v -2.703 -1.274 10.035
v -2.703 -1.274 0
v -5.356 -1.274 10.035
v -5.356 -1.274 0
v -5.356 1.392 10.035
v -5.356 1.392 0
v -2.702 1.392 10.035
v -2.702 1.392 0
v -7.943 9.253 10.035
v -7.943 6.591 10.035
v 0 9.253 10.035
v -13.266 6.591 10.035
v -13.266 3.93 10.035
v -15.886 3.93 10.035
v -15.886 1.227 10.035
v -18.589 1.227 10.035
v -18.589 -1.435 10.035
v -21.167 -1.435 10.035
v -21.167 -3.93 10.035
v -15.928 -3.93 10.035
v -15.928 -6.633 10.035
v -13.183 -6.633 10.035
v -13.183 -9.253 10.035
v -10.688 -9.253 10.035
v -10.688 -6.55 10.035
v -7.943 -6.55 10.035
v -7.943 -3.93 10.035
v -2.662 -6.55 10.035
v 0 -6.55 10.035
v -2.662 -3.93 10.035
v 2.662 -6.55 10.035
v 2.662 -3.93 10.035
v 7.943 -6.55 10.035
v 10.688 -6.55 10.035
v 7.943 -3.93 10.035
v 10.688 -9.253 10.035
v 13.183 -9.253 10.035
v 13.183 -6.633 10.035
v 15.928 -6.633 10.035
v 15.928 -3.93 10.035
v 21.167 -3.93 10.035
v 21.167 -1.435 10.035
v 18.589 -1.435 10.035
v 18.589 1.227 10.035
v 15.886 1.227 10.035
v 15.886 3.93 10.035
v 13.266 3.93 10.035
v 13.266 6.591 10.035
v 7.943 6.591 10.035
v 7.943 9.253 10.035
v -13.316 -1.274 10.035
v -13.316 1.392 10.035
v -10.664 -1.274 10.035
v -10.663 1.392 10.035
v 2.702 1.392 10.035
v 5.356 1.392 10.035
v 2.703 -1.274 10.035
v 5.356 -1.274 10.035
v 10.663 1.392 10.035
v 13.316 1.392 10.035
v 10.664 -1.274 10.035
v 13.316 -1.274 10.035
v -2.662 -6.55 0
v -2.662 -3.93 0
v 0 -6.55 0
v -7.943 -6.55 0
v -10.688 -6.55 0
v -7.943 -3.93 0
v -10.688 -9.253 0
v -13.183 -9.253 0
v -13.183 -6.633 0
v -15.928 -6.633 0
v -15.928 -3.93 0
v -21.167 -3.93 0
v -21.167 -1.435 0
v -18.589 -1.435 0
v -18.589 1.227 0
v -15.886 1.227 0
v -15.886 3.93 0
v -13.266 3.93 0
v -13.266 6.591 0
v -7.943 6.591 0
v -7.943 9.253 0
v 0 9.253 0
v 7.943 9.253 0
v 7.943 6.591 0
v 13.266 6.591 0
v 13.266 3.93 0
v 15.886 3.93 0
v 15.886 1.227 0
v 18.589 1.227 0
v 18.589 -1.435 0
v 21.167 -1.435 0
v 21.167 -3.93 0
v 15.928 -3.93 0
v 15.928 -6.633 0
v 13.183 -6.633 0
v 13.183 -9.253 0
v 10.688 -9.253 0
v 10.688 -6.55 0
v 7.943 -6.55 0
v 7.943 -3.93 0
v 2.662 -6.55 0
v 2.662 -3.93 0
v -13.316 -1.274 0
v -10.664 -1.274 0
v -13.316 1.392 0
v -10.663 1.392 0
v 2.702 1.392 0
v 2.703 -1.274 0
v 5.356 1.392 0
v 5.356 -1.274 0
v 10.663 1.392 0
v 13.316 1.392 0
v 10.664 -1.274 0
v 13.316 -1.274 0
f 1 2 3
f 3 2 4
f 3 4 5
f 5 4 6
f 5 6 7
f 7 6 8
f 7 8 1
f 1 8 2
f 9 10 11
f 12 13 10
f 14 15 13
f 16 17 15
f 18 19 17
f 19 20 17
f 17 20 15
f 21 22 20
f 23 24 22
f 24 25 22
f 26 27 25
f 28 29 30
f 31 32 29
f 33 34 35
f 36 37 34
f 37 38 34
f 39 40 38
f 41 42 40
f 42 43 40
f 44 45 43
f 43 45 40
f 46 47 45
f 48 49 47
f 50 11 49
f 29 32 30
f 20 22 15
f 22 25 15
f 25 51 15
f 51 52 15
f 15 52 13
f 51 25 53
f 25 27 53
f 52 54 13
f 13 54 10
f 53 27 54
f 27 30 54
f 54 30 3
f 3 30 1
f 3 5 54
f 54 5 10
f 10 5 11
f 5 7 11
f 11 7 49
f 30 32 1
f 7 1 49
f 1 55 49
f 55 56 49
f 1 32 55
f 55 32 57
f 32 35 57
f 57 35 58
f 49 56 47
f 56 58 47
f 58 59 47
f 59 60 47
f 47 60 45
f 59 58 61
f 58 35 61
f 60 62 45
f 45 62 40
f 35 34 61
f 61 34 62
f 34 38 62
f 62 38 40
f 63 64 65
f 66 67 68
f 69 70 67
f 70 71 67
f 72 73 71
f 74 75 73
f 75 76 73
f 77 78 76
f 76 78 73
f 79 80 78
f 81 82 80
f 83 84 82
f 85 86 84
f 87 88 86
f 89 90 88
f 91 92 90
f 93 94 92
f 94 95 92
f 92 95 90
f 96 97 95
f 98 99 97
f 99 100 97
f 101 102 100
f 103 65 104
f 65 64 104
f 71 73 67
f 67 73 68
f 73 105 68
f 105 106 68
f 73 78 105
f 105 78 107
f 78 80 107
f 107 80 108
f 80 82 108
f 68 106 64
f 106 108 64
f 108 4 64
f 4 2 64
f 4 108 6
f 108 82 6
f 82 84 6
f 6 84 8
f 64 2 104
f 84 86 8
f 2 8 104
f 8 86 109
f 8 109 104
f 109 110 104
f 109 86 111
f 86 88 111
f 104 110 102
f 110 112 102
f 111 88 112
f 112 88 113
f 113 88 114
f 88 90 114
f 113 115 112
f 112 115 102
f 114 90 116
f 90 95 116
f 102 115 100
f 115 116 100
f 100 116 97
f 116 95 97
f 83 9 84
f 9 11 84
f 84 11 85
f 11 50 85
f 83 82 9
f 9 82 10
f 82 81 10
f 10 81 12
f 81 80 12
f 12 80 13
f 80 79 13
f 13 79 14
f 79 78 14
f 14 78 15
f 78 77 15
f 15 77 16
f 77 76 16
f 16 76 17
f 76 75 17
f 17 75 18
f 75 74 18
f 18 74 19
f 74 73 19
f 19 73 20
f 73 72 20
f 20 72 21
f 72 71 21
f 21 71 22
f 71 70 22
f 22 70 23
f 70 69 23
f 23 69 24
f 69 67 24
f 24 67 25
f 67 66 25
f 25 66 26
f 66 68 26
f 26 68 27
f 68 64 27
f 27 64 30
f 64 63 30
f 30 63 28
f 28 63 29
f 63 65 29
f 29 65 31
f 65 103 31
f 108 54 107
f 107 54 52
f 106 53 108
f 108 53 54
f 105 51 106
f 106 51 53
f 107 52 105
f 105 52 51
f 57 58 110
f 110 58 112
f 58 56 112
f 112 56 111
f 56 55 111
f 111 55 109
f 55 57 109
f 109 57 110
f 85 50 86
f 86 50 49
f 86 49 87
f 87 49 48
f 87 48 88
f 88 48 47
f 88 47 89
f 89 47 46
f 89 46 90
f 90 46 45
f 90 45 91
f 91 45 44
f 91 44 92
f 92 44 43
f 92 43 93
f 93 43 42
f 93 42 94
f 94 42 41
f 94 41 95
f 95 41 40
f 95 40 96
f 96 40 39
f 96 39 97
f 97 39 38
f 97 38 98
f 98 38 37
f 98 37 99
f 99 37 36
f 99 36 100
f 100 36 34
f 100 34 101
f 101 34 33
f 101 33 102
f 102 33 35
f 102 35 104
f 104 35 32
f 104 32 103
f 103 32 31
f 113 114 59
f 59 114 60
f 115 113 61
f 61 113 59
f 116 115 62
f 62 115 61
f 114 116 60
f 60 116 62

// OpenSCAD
module invaders_v2_ship() 
{
	polyhedron(
		points=[
			[-2.703086, -1.273861, 10.03545],
			[-2.703084, -1.273861, 1.037121e-05],
			[-5.355711, -1.273861, 10.03545],
			[-5.355711, -1.273861, 10.03545],
			[-2.703084, -1.273861, 1.037121e-05],
			[-5.355711, -1.273861, 1.037121e-05],
			[-5.355711, -1.273861, 10.03545],
			[-5.355711, -1.273861, 1.037121e-05],
			[-5.355711, 1.391655, 10.03545],
			[-5.355711, 1.391655, 10.03545],
			[-5.355711, -1.273861, 1.037121e-05],
			[-5.355711, 1.391655, 1.037121e-05],
			[-5.355711, 1.391655, 10.03545],
			[-5.355711, 1.391655, 1.037121e-05],
			[-2.701987, 1.391655, 10.03545],
			[-2.701987, 1.391655, 10.03545],
			[-5.355711, 1.391655, 1.037121e-05],
			[-2.701985, 1.391655, 0.0],
			[-2.701987, 1.391655, 10.03545],
			[-2.701985, 1.391655, 0.0],
			[-2.703086, -1.273861, 10.03545],
			[-2.703086, -1.273861, 10.03545],
			[-2.701985, 1.391655, 0.0],
			[-2.703084, -1.273861, 1.037121e-05],
			[-7.942975, 9.252937, 10.03545],
			[-7.942975, 6.591419, 10.03545],
			[-9.536743e-07, 9.252937, 10.03545],
			[-13.26601, 6.591419, 10.03545],
			[-13.26601, 3.929897, 10.03545],
			[-7.942975, 6.591419, 10.03545],
			[-15.88595, 3.929897, 10.03545],
			[-15.88595, 1.226791, 10.03545],
			[-13.26601, 3.929897, 10.03545],
			[-18.58906, 1.226791, 10.03545],
			[-18.58906, -1.434727, 10.03545],
			[-15.88595, 1.226791, 10.03545],
			[-21.1674, -1.434727, 10.03545],
			[-21.1674, -3.929901, 10.03545],
			[-18.58906, -1.434727, 10.03545],
			[-21.1674, -3.929901, 10.03545],
			[-15.92753, -3.929901, 10.03545],
			[-18.58906, -1.434727, 10.03545],
			[-18.58906, -1.434727, 10.03545],
			[-15.92753, -3.929901, 10.03545],
			[-15.88595, 1.226791, 10.03545],
			[-15.92753, -6.633011, 10.03545],
			[-13.18284, -6.633011, 10.03545],
			[-15.92753, -3.929901, 10.03545],
			[-13.18284, -9.252937, 10.03545],
			[-10.68767, -9.252937, 10.03545],
			[-13.18284, -6.633011, 10.03545],
			[-10.68767, -9.252937, 10.03545],
			[-10.68767, -6.549835, 10.03545],
			[-13.18284, -6.633011, 10.03545],
			[-7.942975, -6.549835, 10.03545],
			[-7.942975, -3.929901, 10.03545],
			[-10.68767, -6.549835, 10.03545],
			[-2.661523, -6.549835, 10.03545],
			[-9.536743e-07, -6.549835, 10.03545],
			[-2.661523, -3.929901, 10.03545],
			[2.661521, -6.549835, 10.03545],
			[2.661521, -3.929901, 10.03545],
			[-9.536743e-07, -6.549835, 10.03545],
			[7.942974, -6.549835, 10.03546],
			[10.68767, -6.549835, 10.03546],
			[7.942974, -3.929901, 10.03546],
			[10.68767, -9.252937, 10.03546],
			[13.18284, -9.252937, 10.03546],
			[10.68767, -6.549835, 10.03546],
			[13.18284, -9.252937, 10.03546],
			[13.18284, -6.633011, 10.03546],
			[10.68767, -6.549835, 10.03546],
			[15.92754, -6.633011, 10.03546],
			[15.92754, -3.929901, 10.03546],
			[13.18284, -6.633011, 10.03546],
			[21.1674, -3.929901, 10.03546],
			[21.1674, -1.434727, 10.03546],
			[15.92754, -3.929901, 10.03546],
			[21.1674, -1.434727, 10.03546],
			[18.58906, -1.434727, 10.03546],
			[15.92754, -3.929901, 10.03546],
			[18.58906, 1.226791, 10.03546],
			[15.88595, 1.226791, 10.03546],
			[18.58906, -1.434727, 10.03546],
			[18.58906, -1.434727, 10.03546],
			[15.88595, 1.226791, 10.03546],
			[15.92754, -3.929901, 10.03546],
			[15.88595, 3.929897, 10.03546],
			[13.26602, 3.929897, 10.03546],
			[15.88595, 1.226791, 10.03546],
			[13.26602, 6.591419, 10.03546],
			[7.942974, 6.591419, 10.03546],
			[13.26602, 3.929897, 10.03546],
			[7.942974, 9.252937, 10.03546],
			[-9.536743e-07, 9.252937, 10.03545],
			[7.942974, 6.591419, 10.03546],
			[-9.536743e-07, -6.549835, 10.03545],
			[2.661521, -3.929901, 10.03545],
			[-2.661523, -3.929901, 10.03545],
			[-15.92753, -3.929901, 10.03545],
			[-13.18284, -6.633011, 10.03545],
			[-15.88595, 1.226791, 10.03545],
			[-13.18284, -6.633011, 10.03545],
			[-10.68767, -6.549835, 10.03545],
			[-15.88595, 1.226791, 10.03545],
			[-10.68767, -6.549835, 10.03545],
			[-13.31628, -1.273861, 10.03545],
			[-15.88595, 1.226791, 10.03545],
			[-13.31628, -1.273861, 10.03545],
			[-13.31628, 1.391655, 10.03545],
			[-15.88595, 1.226791, 10.03545],
			[-15.88595, 1.226791, 10.03545],
			[-13.31628, 1.391655, 10.03545],
			[-13.26601, 3.929897, 10.03545],
			[-13.31628, -1.273861, 10.03545],
			[-10.68767, -6.549835, 10.03545],
			[-10.66366, -1.273861, 10.03545],
			[-10.68767, -6.549835, 10.03545],
			[-7.942975, -3.929901, 10.03545],
			[-10.66366, -1.273861, 10.03545],
			[-13.31628, 1.391655, 10.03545],
			[-10.66256, 1.391655, 10.03545],
			[-13.26601, 3.929897, 10.03545],
			[-13.26601, 3.929897, 10.03545],
			[-10.66256, 1.391655, 10.03545],
			[-7.942975, 6.591419, 10.03545],
			[-10.66366, -1.273861, 10.03545],
			[-7.942975, -3.929901, 10.03545],
			[-10.66256, 1.391655, 10.03545],
			[-7.942975, -3.929901, 10.03545],
			[-2.661523, -3.929901, 10.03545],
			[-10.66256, 1.391655, 10.03545],
			[-10.66256, 1.391655, 10.03545],
			[-2.661523, -3.929901, 10.03545],
			[-5.355711, -1.273861, 10.03545],
			[-5.355711, -1.273861, 10.03545],
			[-2.661523, -3.929901, 10.03545],
			[-2.703086, -1.273861, 10.03545],
			[-5.355711, -1.273861, 10.03545],
			[-5.355711, 1.391655, 10.03545],
			[-10.66256, 1.391655, 10.03545],
			[-10.66256, 1.391655, 10.03545],
			[-5.355711, 1.391655, 10.03545],
			[-7.942975, 6.591419, 10.03545],
			[-7.942975, 6.591419, 10.03545],
			[-5.355711, 1.391655, 10.03545],
			[-9.536743e-07, 9.252937, 10.03545],
			[-5.355711, 1.391655, 10.03545],
			[-2.701987, 1.391655, 10.03545],
			[-9.536743e-07, 9.252937, 10.03545],
			[-9.536743e-07, 9.252937, 10.03545],
			[-2.701987, 1.391655, 10.03545],
			[7.942974, 6.591419, 10.03546],
			[-2.661523, -3.929901, 10.03545],
			[2.661521, -3.929901, 10.03545],
			[-2.703086, -1.273861, 10.03545],
			[-2.701987, 1.391655, 10.03545],
			[-2.703086, -1.273861, 10.03545],
			[7.942974, 6.591419, 10.03546],
			[-2.703086, -1.273861, 10.03545],
			[2.701985, 1.391655, 10.03545],
			[7.942974, 6.591419, 10.03546],
			[2.701985, 1.391655, 10.03545],
			[5.355711, 1.391655, 10.03546],
			[7.942974, 6.591419, 10.03546],
			[-2.703086, -1.273861, 10.03545],
			[2.661521, -3.929901, 10.03545],
			[2.701985, 1.391655, 10.03545],
			[2.701985, 1.391655, 10.03545],
			[2.661521, -3.929901, 10.03545],
			[2.703084, -1.273861, 10.03545],
			[2.661521, -3.929901, 10.03545],
			[7.942974, -3.929901, 10.03546],
			[2.703084, -1.273861, 10.03545],
			[2.703084, -1.273861, 10.03545],
			[7.942974, -3.929901, 10.03546],
			[5.355711, -1.273861, 10.03546],
			[7.942974, 6.591419, 10.03546],
			[5.355711, 1.391655, 10.03546],
			[13.26602, 3.929897, 10.03546],
			[5.355711, 1.391655, 10.03546],
			[5.355711, -1.273861, 10.03546],
			[13.26602, 3.929897, 10.03546],
			[5.355711, -1.273861, 10.03546],
			[10.66256, 1.391655, 10.03546],
			[13.26602, 3.929897, 10.03546],
			[10.66256, 1.391655, 10.03546],
			[13.31628, 1.391655, 10.03546],
			[13.26602, 3.929897, 10.03546],
			[13.26602, 3.929897, 10.03546],
			[13.31628, 1.391655, 10.03546],
			[15.88595, 1.226791, 10.03546],
			[10.66256, 1.391655, 10.03546],
			[5.355711, -1.273861, 10.03546],
			[10.66366, -1.273861, 10.03546],
			[5.355711, -1.273861, 10.03546],
			[7.942974, -3.929901, 10.03546],
			[10.66366, -1.273861, 10.03546],
			[13.31628, 1.391655, 10.03546],
			[13.31628, -1.273861, 10.03546],
			[15.88595, 1.226791, 10.03546],
			[15.88595, 1.226791, 10.03546],
			[13.31628, -1.273861, 10.03546],
			[15.92754, -3.929901, 10.03546],
			[7.942974, -3.929901, 10.03546],
			[10.68767, -6.549835, 10.03546],
			[10.66366, -1.273861, 10.03546],
			[10.66366, -1.273861, 10.03546],
			[10.68767, -6.549835, 10.03546],
			[13.31628, -1.273861, 10.03546],
			[10.68767, -6.549835, 10.03546],
			[13.18284, -6.633011, 10.03546],
			[13.31628, -1.273861, 10.03546],
			[13.31628, -1.273861, 10.03546],
			[13.18284, -6.633011, 10.03546],
			[15.92754, -3.929901, 10.03546],
			[-2.661521, -6.549835, 5.125999e-06],
			[-2.661521, -3.929901, 5.125999e-06],
			[9.536743e-07, -6.549835, 5.125999e-06],
			[-7.942975, -6.549835, 5.125999e-06],
			[-10.68767, -6.549835, 5.125999e-06],
			[-7.942975, -3.929901, 5.125999e-06],
			[-10.68767, -9.252937, 5.125999e-06],
			[-13.18284, -9.252937, 5.125999e-06],
			[-10.68767, -6.549835, 5.125999e-06],
			[-13.18284, -9.252937, 5.125999e-06],
			[-13.18284, -6.633011, 5.125999e-06],
			[-10.68767, -6.549835, 5.125999e-06],
			[-15.92753, -6.633011, 5.125999e-06],
			[-15.92753, -3.929901, 5.125999e-06],
			[-13.18284, -6.633011, 5.125999e-06],
			[-21.1674, -3.929901, 2.220446e-16],
			[-21.1674, -1.434727, 2.220446e-16],
			[-15.92753, -3.929901, 5.125999e-06],
			[-21.1674, -1.434727, 2.220446e-16],
			[-18.58906, -1.434727, 2.220446e-16],
			[-15.92753, -3.929901, 5.125999e-06],
			[-18.58906, 1.226791, 0.0],
			[-15.88595, 1.226791, 5.125999e-06],
			[-18.58906, -1.434727, 2.220446e-16],
			[-18.58906, -1.434727, 2.220446e-16],
			[-15.88595, 1.226791, 5.125999e-06],
			[-15.92753, -3.929901, 5.125999e-06],
			[-15.88595, 3.929897, 5.125999e-06],
			[-13.26601, 3.929897, 5.125999e-06],
			[-15.88595, 1.226791, 5.125999e-06],
			[-13.26601, 6.591419, 5.125999e-06],
			[-7.942975, 6.591419, 5.125999e-06],
			[-13.26601, 3.929897, 5.125999e-06],
			[-7.942975, 9.252937, 5.125999e-06],
			[9.536743e-07, 9.252937, 5.125999e-06],
			[-7.942975, 6.591419, 5.125999e-06],
			[7.942974, 9.252937, 1.037121e-05],
			[7.942974, 6.591419, 1.037121e-05],
			[9.536743e-07, 9.252937, 5.125999e-06],
			[13.26602, 6.591419, 1.037121e-05],
			[13.26602, 3.929897, 1.037121e-05],
			[7.942974, 6.591419, 1.037121e-05],
			[15.88595, 3.929897, 1.037121e-05],
			[15.88595, 1.226791, 1.037121e-05],
			[13.26602, 3.929897, 1.037121e-05],
			[18.58906, 1.226791, 1.037121e-05],
			[18.58906, -1.434727, 1.037121e-05],
			[15.88595, 1.226791, 1.037121e-05],
			[21.1674, -1.434727, 1.037121e-05],
			[21.1674, -3.929901, 1.037121e-05],
			[18.58906, -1.434727, 1.037121e-05],
			[21.1674, -3.929901, 1.037121e-05],
			[15.92754, -3.929901, 1.037121e-05],
			[18.58906, -1.434727, 1.037121e-05],
			[18.58906, -1.434727, 1.037121e-05],
			[15.92754, -3.929901, 1.037121e-05],
			[15.88595, 1.226791, 1.037121e-05],
			[15.92754, -6.633011, 1.037121e-05],
			[13.18284, -6.633011, 1.037121e-05],
			[15.92754, -3.929901, 1.037121e-05],
			[13.18284, -9.252937, 1.037121e-05],
			[10.68767, -9.252937, 1.037121e-05],
			[13.18284, -6.633011, 1.037121e-05],
			[10.68767, -9.252937, 1.037121e-05],
			[10.68767, -6.549835, 1.037121e-05],
			[13.18284, -6.633011, 1.037121e-05],
			[7.942974, -6.549835, 1.037121e-05],
			[7.942974, -3.929901, 1.037121e-05],
			[10.68767, -6.549835, 1.037121e-05],
			[2.661521, -6.549835, 1.037121e-05],
			[9.536743e-07, -6.549835, 5.125999e-06],
			[2.661521, -3.929901, 1.037121e-05],
			[9.536743e-07, -6.549835, 5.125999e-06],
			[-2.661521, -3.929901, 5.125999e-06],
			[2.661521, -3.929901, 1.037121e-05],
			[-13.18284, -6.633011, 5.125999e-06],
			[-15.92753, -3.929901, 5.125999e-06],
			[-10.68767, -6.549835, 5.125999e-06],
			[-10.68767, -6.549835, 5.125999e-06],
			[-15.92753, -3.929901, 5.125999e-06],
			[-7.942975, -3.929901, 5.125999e-06],
			[-15.92753, -3.929901, 5.125999e-06],
			[-13.31628, -1.273861, 1.037121e-05],
			[-7.942975, -3.929901, 5.125999e-06],
			[-13.31628, -1.273861, 1.037121e-05],
			[-10.66366, -1.273861, 1.037121e-05],
			[-7.942975, -3.929901, 5.125999e-06],
			[-15.92753, -3.929901, 5.125999e-06],
			[-15.88595, 1.226791, 5.125999e-06],
			[-13.31628, -1.273861, 1.037121e-05],
			[-13.31628, -1.273861, 1.037121e-05],
			[-15.88595, 1.226791, 5.125999e-06],
			[-13.31628, 1.391655, 1.037121e-05],
			[-15.88595, 1.226791, 5.125999e-06],
			[-13.26601, 3.929897, 5.125999e-06],
			[-13.31628, 1.391655, 1.037121e-05],
			[-13.31628, 1.391655, 1.037121e-05],
			[-13.26601, 3.929897, 5.125999e-06],
			[-10.66256, 1.391655, 0.0],
			[-13.26601, 3.929897, 5.125999e-06],
			[-7.942975, 6.591419, 5.125999e-06],
			[-10.66256, 1.391655, 0.0],
			[-7.942975, -3.929901, 5.125999e-06],
			[-10.66366, -1.273861, 1.037121e-05],
			[-2.661521, -3.929901, 5.125999e-06],
			[-10.66366, -1.273861, 1.037121e-05],
			[-10.66256, 1.391655, 0.0],
			[-2.661521, -3.929901, 5.125999e-06],
			[-10.66256, 1.391655, 0.0],
			[-5.355711, -1.273861, 1.037121e-05],
			[-2.661521, -3.929901, 5.125999e-06],
			[-5.355711, -1.273861, 1.037121e-05],
			[-2.703084, -1.273861, 1.037121e-05],
			[-2.661521, -3.929901, 5.125999e-06],
			[-5.355711, -1.273861, 1.037121e-05],
			[-10.66256, 1.391655, 0.0],
			[-5.355711, 1.391655, 1.037121e-05],
			[-10.66256, 1.391655, 0.0],
			[-7.942975, 6.591419, 5.125999e-06],
			[-5.355711, 1.391655, 1.037121e-05],
			[-7.942975, 6.591419, 5.125999e-06],
			[9.536743e-07, 9.252937, 5.125999e-06],
			[-5.355711, 1.391655, 1.037121e-05],
			[-5.355711, 1.391655, 1.037121e-05],
			[9.536743e-07, 9.252937, 5.125999e-06],
			[-2.701985, 1.391655, 0.0],
			[-2.661521, -3.929901, 5.125999e-06],
			[-2.703084, -1.273861, 1.037121e-05],
			[2.661521, -3.929901, 1.037121e-05],
			[9.536743e-07, 9.252937, 5.125999e-06],
			[7.942974, 6.591419, 1.037121e-05],
			[-2.701985, 1.391655, 0.0],
			[-2.703084, -1.273861, 1.037121e-05],
			[-2.701985, 1.391655, 0.0],
			[2.661521, -3.929901, 1.037121e-05],
			[-2.701985, 1.391655, 0.0],
			[7.942974, 6.591419, 1.037121e-05],
			[2.701985, 1.391655, 0.0],
			[-2.701985, 1.391655, 0.0],
			[2.701985, 1.391655, 0.0],
			[2.661521, -3.929901, 1.037121e-05],
			[2.701985, 1.391655, 0.0],
			[2.703084, -1.273861, 1.037121e-05],
			[2.661521, -3.929901, 1.037121e-05],
			[2.701985, 1.391655, 0.0],
			[7.942974, 6.591419, 1.037121e-05],
			[5.355711, 1.391655, 1.549721e-05],
			[7.942974, 6.591419, 1.037121e-05],
			[13.26602, 3.929897, 1.037121e-05],
			[5.355711, 1.391655, 1.549721e-05],
			[2.661521, -3.929901, 1.037121e-05],
			[2.703084, -1.273861, 1.037121e-05],
			[7.942974, -3.929901, 1.037121e-05],
			[2.703084, -1.273861, 1.037121e-05],
			[5.355711, -1.273861, 1.549721e-05],
			[7.942974, -3.929901, 1.037121e-05],
			[5.355711, 1.391655, 1.549721e-05],
			[13.26602, 3.929897, 1.037121e-05],
			[5.355711, -1.273861, 1.549721e-05],
			[5.355711, -1.273861, 1.549721e-05],
			[13.26602, 3.929897, 1.037121e-05],
			[10.66256, 1.391655, 5.125999e-06],
			[10.66256, 1.391655, 5.125999e-06],
			[13.26602, 3.929897, 1.037121e-05],
			[13.31628, 1.391655, 1.549721e-05],
			[13.26602, 3.929897, 1.037121e-05],
			[15.88595, 1.226791, 1.037121e-05],
			[13.31628, 1.391655, 1.549721e-05],
			[10.66256, 1.391655, 5.125999e-06],
			[10.66366, -1.273861, 1.549721e-05],
			[5.355711, -1.273861, 1.549721e-05],
			[5.355711, -1.273861, 1.549721e-05],
			[10.66366, -1.273861, 1.549721e-05],
			[7.942974, -3.929901, 1.037121e-05],
			[13.31628, 1.391655, 1.549721e-05],
			[15.88595, 1.226791, 1.037121e-05],
			[13.31628, -1.273861, 1.549721e-05],
			[15.88595, 1.226791, 1.037121e-05],
			[15.92754, -3.929901, 1.037121e-05],
			[13.31628, -1.273861, 1.549721e-05],
			[7.942974, -3.929901, 1.037121e-05],
			[10.66366, -1.273861, 1.549721e-05],
			[10.68767, -6.549835, 1.037121e-05],
			[10.66366, -1.273861, 1.549721e-05],
			[13.31628, -1.273861, 1.549721e-05],
			[10.68767, -6.549835, 1.037121e-05],
			[10.68767, -6.549835, 1.037121e-05],
			[13.31628, -1.273861, 1.549721e-05],
			[13.18284, -6.633011, 1.037121e-05],
			[13.31628, -1.273861, 1.549721e-05],
			[15.92754, -3.929901, 1.037121e-05],
			[13.18284, -6.633011, 1.037121e-05],
			[-7.942975, 9.252937, 5.125999e-06],
			[-7.942975, 9.252937, 10.03545],
			[9.536743e-07, 9.252937, 5.125999e-06],
			[-7.942975, 9.252937, 10.03545],
			[-9.536743e-07, 9.252937, 10.03545],
			[9.536743e-07, 9.252937, 5.125999e-06],
			[9.536743e-07, 9.252937, 5.125999e-06],
			[-9.536743e-07, 9.252937, 10.03545],
			[7.942974, 9.252937, 1.037121e-05],
			[-9.536743e-07, 9.252937, 10.03545],
			[7.942974, 9.252937, 10.03546],
			[7.942974, 9.252937, 1.037121e-05],
			[-7.942975, 9.252937, 5.125999e-06],
			[-7.942975, 6.591419, 5.125999e-06],
			[-7.942975, 9.252937, 10.03545],
			[-7.942975, 9.252937, 10.03545],
			[-7.942975, 6.591419, 5.125999e-06],
			[-7.942975, 6.591419, 10.03545],
			[-7.942975, 6.591419, 5.125999e-06],
			[-13.26601, 6.591419, 5.125999e-06],
			[-7.942975, 6.591419, 10.03545],
			[-7.942975, 6.591419, 10.03545],
			[-13.26601, 6.591419, 5.125999e-06],
			[-13.26601, 6.591419, 10.03545],
			[-13.26601, 6.591419, 5.125999e-06],
			[-13.26601, 3.929897, 5.125999e-06],
			[-13.26601, 6.591419, 10.03545],
			[-13.26601, 6.591419, 10.03545],
			[-13.26601, 3.929897, 5.125999e-06],
			[-13.26601, 3.929897, 10.03545],
			[-13.26601, 3.929897, 5.125999e-06],
			[-15.88595, 3.929897, 5.125999e-06],
			[-13.26601, 3.929897, 10.03545],
			[-13.26601, 3.929897, 10.03545],
			[-15.88595, 3.929897, 5.125999e-06],
			[-15.88595, 3.929897, 10.03545],
			[-15.88595, 3.929897, 5.125999e-06],
			[-15.88595, 1.226791, 5.125999e-06],
			[-15.88595, 3.929897, 10.03545],
			[-15.88595, 3.929897, 10.03545],
			[-15.88595, 1.226791, 5.125999e-06],
			[-15.88595, 1.226791, 10.03545],
			[-15.88595, 1.226791, 5.125999e-06],
			[-18.58906, 1.226791, 0.0],
			[-15.88595, 1.226791, 10.03545],
			[-15.88595, 1.226791, 10.03545],
			[-18.58906, 1.226791, 0.0],
			[-18.58906, 1.226791, 10.03545],
			[-18.58906, 1.226791, 0.0],
			[-18.58906, -1.434727, 2.220446e-16],
			[-18.58906, 1.226791, 10.03545],
			[-18.58906, 1.226791, 10.03545],
			[-18.58906, -1.434727, 2.220446e-16],
			[-18.58906, -1.434727, 10.03545],
			[-18.58906, -1.434727, 2.220446e-16],
			[-21.1674, -1.434727, 2.220446e-16],
			[-18.58906, -1.434727, 10.03545],
			[-18.58906, -1.434727, 10.03545],
			[-21.1674, -1.434727, 2.220446e-16],
			[-21.1674, -1.434727, 10.03545],
			[-21.1674, -1.434727, 2.220446e-16],
			[-21.1674, -3.929901, 2.220446e-16],
			[-21.1674, -1.434727, 10.03545],
			[-21.1674, -1.434727, 10.03545],
			[-21.1674, -3.929901, 2.220446e-16],
			[-21.1674, -3.929901, 10.03545],
			[-21.1674, -3.929901, 2.220446e-16],
			[-15.92753, -3.929901, 5.125999e-06],
			[-21.1674, -3.929901, 10.03545],
			[-21.1674, -3.929901, 10.03545],
			[-15.92753, -3.929901, 5.125999e-06],
			[-15.92753, -3.929901, 10.03545],
			[-15.92753, -3.929901, 5.125999e-06],
			[-15.92753, -6.633011, 5.125999e-06],
			[-15.92753, -3.929901, 10.03545],
			[-15.92753, -3.929901, 10.03545],
			[-15.92753, -6.633011, 5.125999e-06],
			[-15.92753, -6.633011, 10.03545],
			[-15.92753, -6.633011, 5.125999e-06],
			[-13.18284, -6.633011, 5.125999e-06],
			[-15.92753, -6.633011, 10.03545],
			[-15.92753, -6.633011, 10.03545],
			[-13.18284, -6.633011, 5.125999e-06],
			[-13.18284, -6.633011, 10.03545],
			[-13.18284, -6.633011, 5.125999e-06],
			[-13.18284, -9.252937, 5.125999e-06],
			[-13.18284, -6.633011, 10.03545],
			[-13.18284, -6.633011, 10.03545],
			[-13.18284, -9.252937, 5.125999e-06],
			[-13.18284, -9.252937, 10.03545],
			[-13.18284, -9.252937, 5.125999e-06],
			[-10.68767, -9.252937, 5.125999e-06],
			[-13.18284, -9.252937, 10.03545],
			[-13.18284, -9.252937, 10.03545],
			[-10.68767, -9.252937, 5.125999e-06],
			[-10.68767, -9.252937, 10.03545],
			[-10.68767, -9.252937, 5.125999e-06],
			[-10.68767, -6.549835, 5.125999e-06],
			[-10.68767, -9.252937, 10.03545],
			[-10.68767, -9.252937, 10.03545],
			[-10.68767, -6.549835, 5.125999e-06],
			[-10.68767, -6.549835, 10.03545],
			[-10.68767, -6.549835, 5.125999e-06],
			[-7.942975, -6.549835, 5.125999e-06],
			[-10.68767, -6.549835, 10.03545],
			[-10.68767, -6.549835, 10.03545],
			[-7.942975, -6.549835, 5.125999e-06],
			[-7.942975, -6.549835, 10.03545],
			[-7.942975, -6.549835, 5.125999e-06],
			[-7.942975, -3.929901, 5.125999e-06],
			[-7.942975, -6.549835, 10.03545],
			[-7.942975, -6.549835, 10.03545],
			[-7.942975, -3.929901, 5.125999e-06],
			[-7.942975, -3.929901, 10.03545],
			[-7.942975, -3.929901, 5.125999e-06],
			[-2.661521, -3.929901, 5.125999e-06],
			[-7.942975, -3.929901, 10.03545],
			[-7.942975, -3.929901, 10.03545],
			[-2.661521, -3.929901, 5.125999e-06],
			[-2.661523, -3.929901, 10.03545],
			[-2.661521, -3.929901, 5.125999e-06],
			[-2.661521, -6.549835, 5.125999e-06],
			[-2.661523, -3.929901, 10.03545],
			[-2.661523, -3.929901, 10.03545],
			[-2.661521, -6.549835, 5.125999e-06],
			[-2.661523, -6.549835, 10.03545],
			[-2.661523, -6.549835, 10.03545],
			[-2.661521, -6.549835, 5.125999e-06],
			[-9.536743e-07, -6.549835, 10.03545],
			[-2.661521, -6.549835, 5.125999e-06],
			[9.536743e-07, -6.549835, 5.125999e-06],
			[-9.536743e-07, -6.549835, 10.03545],
			[-9.536743e-07, -6.549835, 10.03545],
			[9.536743e-07, -6.549835, 5.125999e-06],
			[2.661521, -6.549835, 10.03545],
			[9.536743e-07, -6.549835, 5.125999e-06],
			[2.661521, -6.549835, 1.037121e-05],
			[2.661521, -6.549835, 10.03545],
			[-10.66256, 1.391655, 0.0],
			[-10.66256, 1.391655, 10.03545],
			[-13.31628, 1.391655, 1.037121e-05],
			[-13.31628, 1.391655, 1.037121e-05],
			[-10.66256, 1.391655, 10.03545],
			[-13.31628, 1.391655, 10.03545],
			[-10.66366, -1.273861, 1.037121e-05],
			[-10.66366, -1.273861, 10.03545],
			[-10.66256, 1.391655, 0.0],
			[-10.66256, 1.391655, 0.0],
			[-10.66366, -1.273861, 10.03545],
			[-10.66256, 1.391655, 10.03545],
			[-13.31628, -1.273861, 1.037121e-05],
			[-13.31628, -1.273861, 10.03545],
			[-10.66366, -1.273861, 1.037121e-05],
			[-10.66366, -1.273861, 1.037121e-05],
			[-13.31628, -1.273861, 10.03545],
			[-10.66366, -1.273861, 10.03545],
			[-13.31628, 1.391655, 1.037121e-05],
			[-13.31628, 1.391655, 10.03545],
			[-13.31628, -1.273861, 1.037121e-05],
			[-13.31628, -1.273861, 1.037121e-05],
			[-13.31628, 1.391655, 10.03545],
			[-13.31628, -1.273861, 10.03545],
			[2.703084, -1.273861, 10.03545],
			[5.355711, -1.273861, 10.03546],
			[2.703084, -1.273861, 1.037121e-05],
			[2.703084, -1.273861, 1.037121e-05],
			[5.355711, -1.273861, 10.03546],
			[5.355711, -1.273861, 1.549721e-05],
			[5.355711, -1.273861, 10.03546],
			[5.355711, 1.391655, 10.03546],
			[5.355711, -1.273861, 1.549721e-05],
			[5.355711, -1.273861, 1.549721e-05],
			[5.355711, 1.391655, 10.03546],
			[5.355711, 1.391655, 1.549721e-05],
			[5.355711, 1.391655, 10.03546],
			[2.701985, 1.391655, 10.03545],
			[5.355711, 1.391655, 1.549721e-05],
			[5.355711, 1.391655, 1.549721e-05],
			[2.701985, 1.391655, 10.03545],
			[2.701985, 1.391655, 0.0],
			[2.701985, 1.391655, 10.03545],
			[2.703084, -1.273861, 10.03545],
			[2.701985, 1.391655, 0.0],
			[2.701985, 1.391655, 0.0],
			[2.703084, -1.273861, 10.03545],
			[2.703084, -1.273861, 1.037121e-05],
			[7.942974, 9.252937, 1.037121e-05],
			[7.942974, 9.252937, 10.03546],
			[7.942974, 6.591419, 1.037121e-05],
			[7.942974, 6.591419, 1.037121e-05],
			[7.942974, 9.252937, 10.03546],
			[7.942974, 6.591419, 10.03546],
			[7.942974, 6.591419, 1.037121e-05],
			[7.942974, 6.591419, 10.03546],
			[13.26602, 6.591419, 1.037121e-05],
			[13.26602, 6.591419, 1.037121e-05],
			[7.942974, 6.591419, 10.03546],
			[13.26602, 6.591419, 10.03546],
			[13.26602, 6.591419, 1.037121e-05],
			[13.26602, 6.591419, 10.03546],
			[13.26602, 3.929897, 1.037121e-05],
			[13.26602, 3.929897, 1.037121e-05],
			[13.26602, 6.591419, 10.03546],
			[13.26602, 3.929897, 10.03546],
			[13.26602, 3.929897, 1.037121e-05],
			[13.26602, 3.929897, 10.03546],
			[15.88595, 3.929897, 1.037121e-05],
			[15.88595, 3.929897, 1.037121e-05],
			[13.26602, 3.929897, 10.03546],
			[15.88595, 3.929897, 10.03546],
			[15.88595, 3.929897, 1.037121e-05],
			[15.88595, 3.929897, 10.03546],
			[15.88595, 1.226791, 1.037121e-05],
			[15.88595, 1.226791, 1.037121e-05],
			[15.88595, 3.929897, 10.03546],
			[15.88595, 1.226791, 10.03546],
			[15.88595, 1.226791, 1.037121e-05],
			[15.88595, 1.226791, 10.03546],
			[18.58906, 1.226791, 1.037121e-05],
			[18.58906, 1.226791, 1.037121e-05],
			[15.88595, 1.226791, 10.03546],
			[18.58906, 1.226791, 10.03546],
			[18.58906, 1.226791, 1.037121e-05],
			[18.58906, 1.226791, 10.03546],
			[18.58906, -1.434727, 1.037121e-05],
			[18.58906, -1.434727, 1.037121e-05],
			[18.58906, 1.226791, 10.03546],
			[18.58906, -1.434727, 10.03546],
			[18.58906, -1.434727, 1.037121e-05],
			[18.58906, -1.434727, 10.03546],
			[21.1674, -1.434727, 1.037121e-05],
			[21.1674, -1.434727, 1.037121e-05],
			[18.58906, -1.434727, 10.03546],
			[21.1674, -1.434727, 10.03546],
			[21.1674, -1.434727, 1.037121e-05],
			[21.1674, -1.434727, 10.03546],
			[21.1674, -3.929901, 1.037121e-05],
			[21.1674, -3.929901, 1.037121e-05],
			[21.1674, -1.434727, 10.03546],
			[21.1674, -3.929901, 10.03546],
			[21.1674, -3.929901, 1.037121e-05],
			[21.1674, -3.929901, 10.03546],
			[15.92754, -3.929901, 1.037121e-05],
			[15.92754, -3.929901, 1.037121e-05],
			[21.1674, -3.929901, 10.03546],
			[15.92754, -3.929901, 10.03546],
			[15.92754, -3.929901, 1.037121e-05],
			[15.92754, -3.929901, 10.03546],
			[15.92754, -6.633011, 1.037121e-05],
			[15.92754, -6.633011, 1.037121e-05],
			[15.92754, -3.929901, 10.03546],
			[15.92754, -6.633011, 10.03546],
			[15.92754, -6.633011, 1.037121e-05],
			[15.92754, -6.633011, 10.03546],
			[13.18284, -6.633011, 1.037121e-05],
			[13.18284, -6.633011, 1.037121e-05],
			[15.92754, -6.633011, 10.03546],
			[13.18284, -6.633011, 10.03546],
			[13.18284, -6.633011, 1.037121e-05],
			[13.18284, -6.633011, 10.03546],
			[13.18284, -9.252937, 1.037121e-05],
			[13.18284, -9.252937, 1.037121e-05],
			[13.18284, -6.633011, 10.03546],
			[13.18284, -9.252937, 10.03546],
			[13.18284, -9.252937, 1.037121e-05],
			[13.18284, -9.252937, 10.03546],
			[10.68767, -9.252937, 1.037121e-05],
			[10.68767, -9.252937, 1.037121e-05],
			[13.18284, -9.252937, 10.03546],
			[10.68767, -9.252937, 10.03546],
			[10.68767, -9.252937, 1.037121e-05],
			[10.68767, -9.252937, 10.03546],
			[10.68767, -6.549835, 1.037121e-05],
			[10.68767, -6.549835, 1.037121e-05],
			[10.68767, -9.252937, 10.03546],
			[10.68767, -6.549835, 10.03546],
			[10.68767, -6.549835, 1.037121e-05],
			[10.68767, -6.549835, 10.03546],
			[7.942974, -6.549835, 1.037121e-05],
			[7.942974, -6.549835, 1.037121e-05],
			[10.68767, -6.549835, 10.03546],
			[7.942974, -6.549835, 10.03546],
			[7.942974, -6.549835, 1.037121e-05],
			[7.942974, -6.549835, 10.03546],
			[7.942974, -3.929901, 1.037121e-05],
			[7.942974, -3.929901, 1.037121e-05],
			[7.942974, -6.549835, 10.03546],
			[7.942974, -3.929901, 10.03546],
			[7.942974, -3.929901, 1.037121e-05],
			[7.942974, -3.929901, 10.03546],
			[2.661521, -3.929901, 1.037121e-05],
			[2.661521, -3.929901, 1.037121e-05],
			[7.942974, -3.929901, 10.03546],
			[2.661521, -3.929901, 10.03545],
			[2.661521, -3.929901, 1.037121e-05],
			[2.661521, -3.929901, 10.03545],
			[2.661521, -6.549835, 1.037121e-05],
			[2.661521, -6.549835, 1.037121e-05],
			[2.661521, -3.929901, 10.03545],
			[2.661521, -6.549835, 10.03545],
			[10.66256, 1.391655, 5.125999e-06],
			[13.31628, 1.391655, 1.549721e-05],
			[10.66256, 1.391655, 10.03546],
			[10.66256, 1.391655, 10.03546],
			[13.31628, 1.391655, 1.549721e-05],
			[13.31628, 1.391655, 10.03546],
			[10.66366, -1.273861, 1.549721e-05],
			[10.66256, 1.391655, 5.125999e-06],
			[10.66366, -1.273861, 10.03546],
			[10.66366, -1.273861, 10.03546],
			[10.66256, 1.391655, 5.125999e-06],
			[10.66256, 1.391655, 10.03546],
			[13.31628, -1.273861, 1.549721e-05],
			[10.66366, -1.273861, 1.549721e-05],
			[13.31628, -1.273861, 10.03546],
			[13.31628, -1.273861, 10.03546],
			[10.66366, -1.273861, 1.549721e-05],
			[10.66366, -1.273861, 10.03546],
			[13.31628, 1.391655, 1.549721e-05],
			[13.31628, -1.273861, 1.549721e-05],
			[13.31628, 1.391655, 10.03546],
			[13.31628, 1.391655, 10.03546],
			[13.31628, -1.273861, 1.549721e-05],
			[13.31628, -1.273861, 10.03546]
		],
		faces=[
			[0, 1, 2],
			[3, 4, 5],
			[6, 7, 8],
			[9, 10, 11],
			[12, 13, 14],
			[15, 16, 17],
			[18, 19, 20],
			[21, 22, 23],
			[24, 25, 26],
			[27, 28, 29],
			[30, 31, 32],
			[33, 34, 35],
			[36, 37, 38],
			[39, 40, 41],
			[42, 43, 44],
			[45, 46, 47],
			[48, 49, 50],
			[51, 52, 53],
			[54, 55, 56],
			[57, 58, 59],
			[60, 61, 62],
			[63, 64, 65],
			[66, 67, 68],
			[69, 70, 71],
			[72, 73, 74],
			[75, 76, 77],
			[78, 79, 80],
			[81, 82, 83],
			[84, 85, 86],
			[87, 88, 89],
			[90, 91, 92],
			[93, 94, 95],
			[96, 97, 98],
			[99, 100, 101],
			[102, 103, 104],
			[105, 106, 107],
			[108, 109, 110],
			[111, 112, 113],
			[114, 115, 116],
			[117, 118, 119],
			[120, 121, 122],
			[123, 124, 125],
			[126, 127, 128],
			[129, 130, 131],
			[132, 133, 134],
			[135, 136, 137],
			[138, 139, 140],
			[141, 142, 143],
			[144, 145, 146],
			[147, 148, 149],
			[150, 151, 152],
			[153, 154, 155],
			[156, 157, 158],
			[159, 160, 161],
			[162, 163, 164],
			[165, 166, 167],
			[168, 169, 170],
			[171, 172, 173],
			[174, 175, 176],
			[177, 178, 179],
			[180, 181, 182],
			[183, 184, 185],
			[186, 187, 188],
			[189, 190, 191],
			[192, 193, 194],
			[195, 196, 197],
			[198, 199, 200],
			[201, 202, 203],
			[204, 205, 206],
			[207, 208, 209],
			[210, 211, 212],
			[213, 214, 215],
			[216, 217, 218],
			[219, 220, 221],
			[222, 223, 224],
			[225, 226, 227],
			[228, 229, 230],
			[231, 232, 233],
			[234, 235, 236],
			[237, 238, 239],
			[240, 241, 242],
			[243, 244, 245],
			[246, 247, 248],
			[249, 250, 251],
			[252, 253, 254],
			[255, 256, 257],
			[258, 259, 260],
			[261, 262, 263],
			[264, 265, 266],
			[267, 268, 269],
			[270, 271, 272],
			[273, 274, 275],
			[276, 277, 278],
			[279, 280, 281],
			[282, 283, 284],
			[285, 286, 287],
			[288, 289, 290],
			[291, 292, 293],
			[294, 295, 296],
			[297, 298, 299],
			[300, 301, 302],
			[303, 304, 305],
			[306, 307, 308],
			[309, 310, 311],
			[312, 313, 314],
			[315, 316, 317],
			[318, 319, 320],
			[321, 322, 323],
			[324, 325, 326],
			[327, 328, 329],
			[330, 331, 332],
			[333, 334, 335],
			[336, 337, 338],
			[339, 340, 341],
			[342, 343, 344],
			[345, 346, 347],
			[348, 349, 350],
			[351, 352, 353],
			[354, 355, 356],
			[357, 358, 359],
			[360, 361, 362],
			[363, 364, 365],
			[366, 367, 368],
			[369, 370, 371],
			[372, 373, 374],
			[375, 376, 377],
			[378, 379, 380],
			[381, 382, 383],
			[384, 385, 386],
			[387, 388, 389],
			[390, 391, 392],
			[393, 394, 395],
			[396, 397, 398],
			[399, 400, 401],
			[402, 403, 404],
			[405, 406, 407],
			[408, 409, 410],
			[411, 412, 413],
			[414, 415, 416],
			[417, 418, 419],
			[420, 421, 422],
			[423, 424, 425],
			[426, 427, 428],
			[429, 430, 431],
			[432, 433, 434],
			[435, 436, 437],
			[438, 439, 440],
			[441, 442, 443],
			[444, 445, 446],
			[447, 448, 449],
			[450, 451, 452],
			[453, 454, 455],
			[456, 457, 458],
			[459, 460, 461],
			[462, 463, 464],
			[465, 466, 467],
			[468, 469, 470],
			[471, 472, 473],
			[474, 475, 476],
			[477, 478, 479],
			[480, 481, 482],
			[483, 484, 485],
			[486, 487, 488],
			[489, 490, 491],
			[492, 493, 494],
			[495, 496, 497],
			[498, 499, 500],
			[501, 502, 503],
			[504, 505, 506],
			[507, 508, 509],
			[510, 511, 512],
			[513, 514, 515],
			[516, 517, 518],
			[519, 520, 521],
			[522, 523, 524],
			[525, 526, 527],
			[528, 529, 530],
			[531, 532, 533],
			[534, 535, 536],
			[537, 538, 539],
			[540, 541, 542],
			[543, 544, 545],
			[546, 547, 548],
			[549, 550, 551],
			[552, 553, 554],
			[555, 556, 557],
			[558, 559, 560],
			[561, 562, 563],
			[564, 565, 566],
			[567, 568, 569],
			[570, 571, 572],
			[573, 574, 575],
			[576, 577, 578],
			[579, 580, 581],
			[582, 583, 584],
			[585, 586, 587],
			[588, 589, 590],
			[591, 592, 593],
			[594, 595, 596],
			[597, 598, 599],
			[600, 601, 602],
			[603, 604, 605],
			[606, 607, 608],
			[609, 610, 611],
			[612, 613, 614],
			[615, 616, 617],
			[618, 619, 620],
			[621, 622, 623],
			[624, 625, 626],
			[627, 628, 629],
			[630, 631, 632],
			[633, 634, 635],
			[636, 637, 638],
			[639, 640, 641],
			[642, 643, 644],
			[645, 646, 647],
			[648, 649, 650],
			[651, 652, 653],
			[654, 655, 656],
			[657, 658, 659],
			[660, 661, 662],
			[663, 664, 665],
			[666, 667, 668],
			[669, 670, 671],
			[672, 673, 674],
			[675, 676, 677],
			[678, 679, 680],
			[681, 682, 683],
			[684, 685, 686],
			[687, 688, 689],
			[690, 691, 692],
			[693, 694, 695],
			[696, 697, 698],
			[699, 700, 701],
			[702, 703, 704],
			[705, 706, 707],
			[708, 709, 710],
			[711, 712, 713],
			[714, 715, 716],
			[717, 718, 719],
			[720, 721, 722],
			[723, 724, 725],
			[726, 727, 728],
			[729, 730, 731]
		]
	);
}


invaders_v2_ship();
